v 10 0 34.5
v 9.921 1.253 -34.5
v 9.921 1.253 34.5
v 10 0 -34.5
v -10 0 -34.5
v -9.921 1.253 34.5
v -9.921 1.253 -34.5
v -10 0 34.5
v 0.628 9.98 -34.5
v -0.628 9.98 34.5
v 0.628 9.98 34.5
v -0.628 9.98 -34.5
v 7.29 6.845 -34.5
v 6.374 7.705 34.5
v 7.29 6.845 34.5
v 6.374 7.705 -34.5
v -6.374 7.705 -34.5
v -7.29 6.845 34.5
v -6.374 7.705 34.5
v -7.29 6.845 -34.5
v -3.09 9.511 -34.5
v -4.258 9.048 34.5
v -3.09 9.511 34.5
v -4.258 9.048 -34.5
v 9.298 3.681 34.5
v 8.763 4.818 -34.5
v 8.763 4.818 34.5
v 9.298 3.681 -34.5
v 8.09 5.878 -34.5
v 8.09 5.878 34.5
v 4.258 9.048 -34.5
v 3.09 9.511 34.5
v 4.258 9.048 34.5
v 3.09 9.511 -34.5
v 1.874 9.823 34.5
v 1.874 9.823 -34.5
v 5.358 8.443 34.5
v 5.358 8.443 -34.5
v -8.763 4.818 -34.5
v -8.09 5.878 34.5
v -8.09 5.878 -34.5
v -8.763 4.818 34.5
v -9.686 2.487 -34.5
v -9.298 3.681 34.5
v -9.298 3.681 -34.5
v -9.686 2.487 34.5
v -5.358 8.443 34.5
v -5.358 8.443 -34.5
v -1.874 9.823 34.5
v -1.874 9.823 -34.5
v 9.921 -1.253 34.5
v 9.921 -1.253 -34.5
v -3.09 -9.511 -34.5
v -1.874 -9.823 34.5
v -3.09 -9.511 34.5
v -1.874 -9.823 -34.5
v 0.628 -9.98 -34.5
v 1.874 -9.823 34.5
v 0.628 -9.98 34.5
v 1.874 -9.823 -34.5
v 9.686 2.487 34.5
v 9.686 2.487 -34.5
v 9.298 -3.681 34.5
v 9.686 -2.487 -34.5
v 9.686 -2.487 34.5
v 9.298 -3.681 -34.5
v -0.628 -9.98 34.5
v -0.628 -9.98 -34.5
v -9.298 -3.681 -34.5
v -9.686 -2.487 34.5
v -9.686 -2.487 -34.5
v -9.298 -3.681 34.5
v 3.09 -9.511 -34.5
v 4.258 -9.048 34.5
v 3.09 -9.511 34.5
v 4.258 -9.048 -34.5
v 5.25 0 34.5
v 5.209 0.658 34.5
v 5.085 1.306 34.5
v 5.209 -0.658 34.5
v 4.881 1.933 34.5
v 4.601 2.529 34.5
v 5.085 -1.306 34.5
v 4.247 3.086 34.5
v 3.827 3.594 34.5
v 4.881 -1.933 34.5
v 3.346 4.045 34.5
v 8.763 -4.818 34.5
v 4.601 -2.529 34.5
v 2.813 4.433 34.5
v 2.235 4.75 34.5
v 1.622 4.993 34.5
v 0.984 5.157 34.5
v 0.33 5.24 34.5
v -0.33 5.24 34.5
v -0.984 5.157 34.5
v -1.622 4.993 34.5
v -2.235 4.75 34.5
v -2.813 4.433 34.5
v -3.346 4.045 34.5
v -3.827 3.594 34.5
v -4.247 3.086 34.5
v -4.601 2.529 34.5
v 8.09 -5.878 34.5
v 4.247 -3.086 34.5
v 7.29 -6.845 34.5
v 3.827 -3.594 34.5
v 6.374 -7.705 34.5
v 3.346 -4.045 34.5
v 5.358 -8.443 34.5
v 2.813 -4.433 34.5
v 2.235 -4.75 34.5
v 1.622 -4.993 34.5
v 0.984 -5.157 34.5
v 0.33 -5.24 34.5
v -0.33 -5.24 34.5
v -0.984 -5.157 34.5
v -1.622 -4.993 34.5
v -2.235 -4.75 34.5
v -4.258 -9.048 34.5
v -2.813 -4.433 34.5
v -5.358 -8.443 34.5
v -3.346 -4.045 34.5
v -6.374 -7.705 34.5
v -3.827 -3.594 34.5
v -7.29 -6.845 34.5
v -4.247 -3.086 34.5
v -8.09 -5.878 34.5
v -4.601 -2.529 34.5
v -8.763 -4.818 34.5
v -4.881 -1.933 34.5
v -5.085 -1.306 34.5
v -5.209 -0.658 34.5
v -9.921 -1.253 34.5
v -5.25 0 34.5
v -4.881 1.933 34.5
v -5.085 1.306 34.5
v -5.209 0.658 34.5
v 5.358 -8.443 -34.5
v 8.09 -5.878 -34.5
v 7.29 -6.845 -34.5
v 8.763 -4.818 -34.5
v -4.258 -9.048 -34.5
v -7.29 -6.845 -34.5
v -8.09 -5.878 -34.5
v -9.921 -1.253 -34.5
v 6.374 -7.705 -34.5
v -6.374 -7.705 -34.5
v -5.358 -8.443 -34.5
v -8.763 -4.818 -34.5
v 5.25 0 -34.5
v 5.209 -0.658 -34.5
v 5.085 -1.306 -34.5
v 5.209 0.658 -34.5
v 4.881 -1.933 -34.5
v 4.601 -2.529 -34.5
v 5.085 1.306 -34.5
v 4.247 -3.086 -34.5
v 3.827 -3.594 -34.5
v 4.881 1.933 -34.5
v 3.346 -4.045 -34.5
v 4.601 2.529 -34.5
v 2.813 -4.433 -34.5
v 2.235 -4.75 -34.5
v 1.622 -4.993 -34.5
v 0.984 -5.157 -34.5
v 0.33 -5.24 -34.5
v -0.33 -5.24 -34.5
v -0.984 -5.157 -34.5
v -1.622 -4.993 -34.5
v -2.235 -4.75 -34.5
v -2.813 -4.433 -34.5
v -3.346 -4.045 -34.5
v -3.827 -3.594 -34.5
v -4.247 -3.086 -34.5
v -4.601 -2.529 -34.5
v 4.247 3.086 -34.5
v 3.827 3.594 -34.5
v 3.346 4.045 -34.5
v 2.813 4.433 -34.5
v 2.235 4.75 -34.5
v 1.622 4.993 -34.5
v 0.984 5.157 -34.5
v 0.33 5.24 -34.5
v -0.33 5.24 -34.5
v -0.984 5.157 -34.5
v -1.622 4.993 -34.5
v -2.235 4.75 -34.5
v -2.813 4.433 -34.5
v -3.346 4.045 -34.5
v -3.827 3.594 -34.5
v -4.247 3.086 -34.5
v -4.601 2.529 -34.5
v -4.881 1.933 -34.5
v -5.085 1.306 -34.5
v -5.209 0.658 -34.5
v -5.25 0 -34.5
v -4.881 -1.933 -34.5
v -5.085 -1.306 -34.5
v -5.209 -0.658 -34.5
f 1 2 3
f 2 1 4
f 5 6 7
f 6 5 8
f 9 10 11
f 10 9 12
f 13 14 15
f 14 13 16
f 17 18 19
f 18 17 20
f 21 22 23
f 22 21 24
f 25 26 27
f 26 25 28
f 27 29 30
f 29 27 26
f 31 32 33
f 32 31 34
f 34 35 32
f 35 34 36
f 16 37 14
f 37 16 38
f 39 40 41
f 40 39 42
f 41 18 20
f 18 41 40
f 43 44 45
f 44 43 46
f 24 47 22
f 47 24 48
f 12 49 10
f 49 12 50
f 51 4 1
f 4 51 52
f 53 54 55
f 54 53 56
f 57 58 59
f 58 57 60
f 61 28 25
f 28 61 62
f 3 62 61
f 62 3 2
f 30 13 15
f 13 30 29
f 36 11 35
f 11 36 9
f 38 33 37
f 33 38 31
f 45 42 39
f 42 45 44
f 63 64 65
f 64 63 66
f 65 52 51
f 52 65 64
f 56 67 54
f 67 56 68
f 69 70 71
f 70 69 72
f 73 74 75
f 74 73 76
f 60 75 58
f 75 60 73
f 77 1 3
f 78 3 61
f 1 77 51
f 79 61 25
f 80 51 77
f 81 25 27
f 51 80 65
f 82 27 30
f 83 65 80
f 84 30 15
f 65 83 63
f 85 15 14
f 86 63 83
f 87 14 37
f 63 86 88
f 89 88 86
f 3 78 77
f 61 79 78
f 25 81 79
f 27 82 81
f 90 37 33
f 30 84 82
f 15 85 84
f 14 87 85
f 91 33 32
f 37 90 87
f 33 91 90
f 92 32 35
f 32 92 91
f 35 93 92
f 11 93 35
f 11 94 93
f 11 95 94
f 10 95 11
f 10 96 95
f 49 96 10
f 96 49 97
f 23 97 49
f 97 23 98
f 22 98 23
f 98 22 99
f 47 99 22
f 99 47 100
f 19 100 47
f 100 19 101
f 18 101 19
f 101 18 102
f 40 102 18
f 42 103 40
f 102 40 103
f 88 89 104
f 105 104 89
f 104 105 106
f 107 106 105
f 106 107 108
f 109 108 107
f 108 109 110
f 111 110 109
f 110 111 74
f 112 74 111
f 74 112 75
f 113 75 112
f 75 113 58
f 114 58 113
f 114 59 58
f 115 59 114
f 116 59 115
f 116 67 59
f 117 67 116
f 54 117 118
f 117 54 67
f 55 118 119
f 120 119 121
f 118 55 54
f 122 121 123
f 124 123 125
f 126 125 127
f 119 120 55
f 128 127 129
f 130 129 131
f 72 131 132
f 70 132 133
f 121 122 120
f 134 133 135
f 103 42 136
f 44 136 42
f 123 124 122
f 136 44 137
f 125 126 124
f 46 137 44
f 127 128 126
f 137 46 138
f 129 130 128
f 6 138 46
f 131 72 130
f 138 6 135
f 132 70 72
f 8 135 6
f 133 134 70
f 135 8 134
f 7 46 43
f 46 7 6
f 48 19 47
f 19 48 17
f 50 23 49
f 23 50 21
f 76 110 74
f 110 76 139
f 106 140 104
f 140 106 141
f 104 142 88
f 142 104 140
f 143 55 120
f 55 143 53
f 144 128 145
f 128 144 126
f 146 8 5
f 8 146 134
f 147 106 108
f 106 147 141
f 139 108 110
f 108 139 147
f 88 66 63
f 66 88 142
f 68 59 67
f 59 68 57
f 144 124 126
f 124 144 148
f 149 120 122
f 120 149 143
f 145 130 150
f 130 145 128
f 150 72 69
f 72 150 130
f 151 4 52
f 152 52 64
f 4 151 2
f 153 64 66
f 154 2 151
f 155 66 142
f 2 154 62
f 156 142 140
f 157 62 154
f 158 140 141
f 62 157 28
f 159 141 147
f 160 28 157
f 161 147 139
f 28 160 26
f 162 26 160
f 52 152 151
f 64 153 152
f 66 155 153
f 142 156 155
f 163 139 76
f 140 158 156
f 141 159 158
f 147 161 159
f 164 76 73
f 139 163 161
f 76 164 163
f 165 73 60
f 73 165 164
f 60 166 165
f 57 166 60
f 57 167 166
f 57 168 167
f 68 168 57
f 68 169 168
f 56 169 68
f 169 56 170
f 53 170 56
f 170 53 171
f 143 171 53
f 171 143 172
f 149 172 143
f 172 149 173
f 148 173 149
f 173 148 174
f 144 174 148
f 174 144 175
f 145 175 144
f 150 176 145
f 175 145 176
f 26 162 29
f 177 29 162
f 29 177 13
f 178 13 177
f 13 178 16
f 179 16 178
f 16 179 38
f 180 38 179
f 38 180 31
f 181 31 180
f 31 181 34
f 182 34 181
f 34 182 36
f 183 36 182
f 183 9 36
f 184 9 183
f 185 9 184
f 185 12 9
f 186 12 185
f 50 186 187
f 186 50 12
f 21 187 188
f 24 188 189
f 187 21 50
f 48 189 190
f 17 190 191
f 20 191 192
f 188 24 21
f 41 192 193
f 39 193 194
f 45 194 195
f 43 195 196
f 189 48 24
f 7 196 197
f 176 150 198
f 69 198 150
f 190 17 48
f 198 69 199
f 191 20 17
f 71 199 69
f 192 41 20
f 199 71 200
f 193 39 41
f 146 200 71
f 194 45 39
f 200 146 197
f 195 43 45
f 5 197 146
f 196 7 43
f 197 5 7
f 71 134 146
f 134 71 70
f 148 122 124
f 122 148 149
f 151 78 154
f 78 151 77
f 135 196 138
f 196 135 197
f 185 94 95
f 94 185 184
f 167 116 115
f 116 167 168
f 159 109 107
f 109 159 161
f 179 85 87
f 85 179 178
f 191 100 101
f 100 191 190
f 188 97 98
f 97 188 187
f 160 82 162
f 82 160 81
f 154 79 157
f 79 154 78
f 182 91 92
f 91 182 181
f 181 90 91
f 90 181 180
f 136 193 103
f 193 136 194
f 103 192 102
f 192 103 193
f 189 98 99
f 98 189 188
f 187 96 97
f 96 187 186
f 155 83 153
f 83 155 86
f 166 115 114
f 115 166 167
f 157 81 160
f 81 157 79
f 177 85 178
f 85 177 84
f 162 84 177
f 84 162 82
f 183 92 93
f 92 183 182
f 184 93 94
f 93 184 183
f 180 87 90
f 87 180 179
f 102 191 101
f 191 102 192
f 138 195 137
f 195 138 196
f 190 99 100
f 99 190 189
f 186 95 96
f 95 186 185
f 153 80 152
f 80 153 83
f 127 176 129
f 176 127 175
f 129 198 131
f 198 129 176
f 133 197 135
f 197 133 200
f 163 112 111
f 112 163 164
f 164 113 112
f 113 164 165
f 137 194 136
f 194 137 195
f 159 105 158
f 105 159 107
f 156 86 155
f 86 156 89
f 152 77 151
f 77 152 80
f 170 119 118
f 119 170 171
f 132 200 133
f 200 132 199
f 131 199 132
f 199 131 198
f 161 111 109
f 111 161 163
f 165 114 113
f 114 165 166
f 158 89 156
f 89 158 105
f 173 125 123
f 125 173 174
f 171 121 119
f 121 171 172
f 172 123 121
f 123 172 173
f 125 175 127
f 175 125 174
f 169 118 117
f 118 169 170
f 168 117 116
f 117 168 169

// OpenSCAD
$fn = 50;


difference() {
	union() {
		translate(v = [0, 0, -34.5000000000]) {
			cylinder(h = 69, r = 10.0000000000);
		}
	}
	union() {
		translate(v = [0, 0, -100.0000000000]) {
			cylinder(h = 200, r = 5.2500000000);
		}
	}
}
